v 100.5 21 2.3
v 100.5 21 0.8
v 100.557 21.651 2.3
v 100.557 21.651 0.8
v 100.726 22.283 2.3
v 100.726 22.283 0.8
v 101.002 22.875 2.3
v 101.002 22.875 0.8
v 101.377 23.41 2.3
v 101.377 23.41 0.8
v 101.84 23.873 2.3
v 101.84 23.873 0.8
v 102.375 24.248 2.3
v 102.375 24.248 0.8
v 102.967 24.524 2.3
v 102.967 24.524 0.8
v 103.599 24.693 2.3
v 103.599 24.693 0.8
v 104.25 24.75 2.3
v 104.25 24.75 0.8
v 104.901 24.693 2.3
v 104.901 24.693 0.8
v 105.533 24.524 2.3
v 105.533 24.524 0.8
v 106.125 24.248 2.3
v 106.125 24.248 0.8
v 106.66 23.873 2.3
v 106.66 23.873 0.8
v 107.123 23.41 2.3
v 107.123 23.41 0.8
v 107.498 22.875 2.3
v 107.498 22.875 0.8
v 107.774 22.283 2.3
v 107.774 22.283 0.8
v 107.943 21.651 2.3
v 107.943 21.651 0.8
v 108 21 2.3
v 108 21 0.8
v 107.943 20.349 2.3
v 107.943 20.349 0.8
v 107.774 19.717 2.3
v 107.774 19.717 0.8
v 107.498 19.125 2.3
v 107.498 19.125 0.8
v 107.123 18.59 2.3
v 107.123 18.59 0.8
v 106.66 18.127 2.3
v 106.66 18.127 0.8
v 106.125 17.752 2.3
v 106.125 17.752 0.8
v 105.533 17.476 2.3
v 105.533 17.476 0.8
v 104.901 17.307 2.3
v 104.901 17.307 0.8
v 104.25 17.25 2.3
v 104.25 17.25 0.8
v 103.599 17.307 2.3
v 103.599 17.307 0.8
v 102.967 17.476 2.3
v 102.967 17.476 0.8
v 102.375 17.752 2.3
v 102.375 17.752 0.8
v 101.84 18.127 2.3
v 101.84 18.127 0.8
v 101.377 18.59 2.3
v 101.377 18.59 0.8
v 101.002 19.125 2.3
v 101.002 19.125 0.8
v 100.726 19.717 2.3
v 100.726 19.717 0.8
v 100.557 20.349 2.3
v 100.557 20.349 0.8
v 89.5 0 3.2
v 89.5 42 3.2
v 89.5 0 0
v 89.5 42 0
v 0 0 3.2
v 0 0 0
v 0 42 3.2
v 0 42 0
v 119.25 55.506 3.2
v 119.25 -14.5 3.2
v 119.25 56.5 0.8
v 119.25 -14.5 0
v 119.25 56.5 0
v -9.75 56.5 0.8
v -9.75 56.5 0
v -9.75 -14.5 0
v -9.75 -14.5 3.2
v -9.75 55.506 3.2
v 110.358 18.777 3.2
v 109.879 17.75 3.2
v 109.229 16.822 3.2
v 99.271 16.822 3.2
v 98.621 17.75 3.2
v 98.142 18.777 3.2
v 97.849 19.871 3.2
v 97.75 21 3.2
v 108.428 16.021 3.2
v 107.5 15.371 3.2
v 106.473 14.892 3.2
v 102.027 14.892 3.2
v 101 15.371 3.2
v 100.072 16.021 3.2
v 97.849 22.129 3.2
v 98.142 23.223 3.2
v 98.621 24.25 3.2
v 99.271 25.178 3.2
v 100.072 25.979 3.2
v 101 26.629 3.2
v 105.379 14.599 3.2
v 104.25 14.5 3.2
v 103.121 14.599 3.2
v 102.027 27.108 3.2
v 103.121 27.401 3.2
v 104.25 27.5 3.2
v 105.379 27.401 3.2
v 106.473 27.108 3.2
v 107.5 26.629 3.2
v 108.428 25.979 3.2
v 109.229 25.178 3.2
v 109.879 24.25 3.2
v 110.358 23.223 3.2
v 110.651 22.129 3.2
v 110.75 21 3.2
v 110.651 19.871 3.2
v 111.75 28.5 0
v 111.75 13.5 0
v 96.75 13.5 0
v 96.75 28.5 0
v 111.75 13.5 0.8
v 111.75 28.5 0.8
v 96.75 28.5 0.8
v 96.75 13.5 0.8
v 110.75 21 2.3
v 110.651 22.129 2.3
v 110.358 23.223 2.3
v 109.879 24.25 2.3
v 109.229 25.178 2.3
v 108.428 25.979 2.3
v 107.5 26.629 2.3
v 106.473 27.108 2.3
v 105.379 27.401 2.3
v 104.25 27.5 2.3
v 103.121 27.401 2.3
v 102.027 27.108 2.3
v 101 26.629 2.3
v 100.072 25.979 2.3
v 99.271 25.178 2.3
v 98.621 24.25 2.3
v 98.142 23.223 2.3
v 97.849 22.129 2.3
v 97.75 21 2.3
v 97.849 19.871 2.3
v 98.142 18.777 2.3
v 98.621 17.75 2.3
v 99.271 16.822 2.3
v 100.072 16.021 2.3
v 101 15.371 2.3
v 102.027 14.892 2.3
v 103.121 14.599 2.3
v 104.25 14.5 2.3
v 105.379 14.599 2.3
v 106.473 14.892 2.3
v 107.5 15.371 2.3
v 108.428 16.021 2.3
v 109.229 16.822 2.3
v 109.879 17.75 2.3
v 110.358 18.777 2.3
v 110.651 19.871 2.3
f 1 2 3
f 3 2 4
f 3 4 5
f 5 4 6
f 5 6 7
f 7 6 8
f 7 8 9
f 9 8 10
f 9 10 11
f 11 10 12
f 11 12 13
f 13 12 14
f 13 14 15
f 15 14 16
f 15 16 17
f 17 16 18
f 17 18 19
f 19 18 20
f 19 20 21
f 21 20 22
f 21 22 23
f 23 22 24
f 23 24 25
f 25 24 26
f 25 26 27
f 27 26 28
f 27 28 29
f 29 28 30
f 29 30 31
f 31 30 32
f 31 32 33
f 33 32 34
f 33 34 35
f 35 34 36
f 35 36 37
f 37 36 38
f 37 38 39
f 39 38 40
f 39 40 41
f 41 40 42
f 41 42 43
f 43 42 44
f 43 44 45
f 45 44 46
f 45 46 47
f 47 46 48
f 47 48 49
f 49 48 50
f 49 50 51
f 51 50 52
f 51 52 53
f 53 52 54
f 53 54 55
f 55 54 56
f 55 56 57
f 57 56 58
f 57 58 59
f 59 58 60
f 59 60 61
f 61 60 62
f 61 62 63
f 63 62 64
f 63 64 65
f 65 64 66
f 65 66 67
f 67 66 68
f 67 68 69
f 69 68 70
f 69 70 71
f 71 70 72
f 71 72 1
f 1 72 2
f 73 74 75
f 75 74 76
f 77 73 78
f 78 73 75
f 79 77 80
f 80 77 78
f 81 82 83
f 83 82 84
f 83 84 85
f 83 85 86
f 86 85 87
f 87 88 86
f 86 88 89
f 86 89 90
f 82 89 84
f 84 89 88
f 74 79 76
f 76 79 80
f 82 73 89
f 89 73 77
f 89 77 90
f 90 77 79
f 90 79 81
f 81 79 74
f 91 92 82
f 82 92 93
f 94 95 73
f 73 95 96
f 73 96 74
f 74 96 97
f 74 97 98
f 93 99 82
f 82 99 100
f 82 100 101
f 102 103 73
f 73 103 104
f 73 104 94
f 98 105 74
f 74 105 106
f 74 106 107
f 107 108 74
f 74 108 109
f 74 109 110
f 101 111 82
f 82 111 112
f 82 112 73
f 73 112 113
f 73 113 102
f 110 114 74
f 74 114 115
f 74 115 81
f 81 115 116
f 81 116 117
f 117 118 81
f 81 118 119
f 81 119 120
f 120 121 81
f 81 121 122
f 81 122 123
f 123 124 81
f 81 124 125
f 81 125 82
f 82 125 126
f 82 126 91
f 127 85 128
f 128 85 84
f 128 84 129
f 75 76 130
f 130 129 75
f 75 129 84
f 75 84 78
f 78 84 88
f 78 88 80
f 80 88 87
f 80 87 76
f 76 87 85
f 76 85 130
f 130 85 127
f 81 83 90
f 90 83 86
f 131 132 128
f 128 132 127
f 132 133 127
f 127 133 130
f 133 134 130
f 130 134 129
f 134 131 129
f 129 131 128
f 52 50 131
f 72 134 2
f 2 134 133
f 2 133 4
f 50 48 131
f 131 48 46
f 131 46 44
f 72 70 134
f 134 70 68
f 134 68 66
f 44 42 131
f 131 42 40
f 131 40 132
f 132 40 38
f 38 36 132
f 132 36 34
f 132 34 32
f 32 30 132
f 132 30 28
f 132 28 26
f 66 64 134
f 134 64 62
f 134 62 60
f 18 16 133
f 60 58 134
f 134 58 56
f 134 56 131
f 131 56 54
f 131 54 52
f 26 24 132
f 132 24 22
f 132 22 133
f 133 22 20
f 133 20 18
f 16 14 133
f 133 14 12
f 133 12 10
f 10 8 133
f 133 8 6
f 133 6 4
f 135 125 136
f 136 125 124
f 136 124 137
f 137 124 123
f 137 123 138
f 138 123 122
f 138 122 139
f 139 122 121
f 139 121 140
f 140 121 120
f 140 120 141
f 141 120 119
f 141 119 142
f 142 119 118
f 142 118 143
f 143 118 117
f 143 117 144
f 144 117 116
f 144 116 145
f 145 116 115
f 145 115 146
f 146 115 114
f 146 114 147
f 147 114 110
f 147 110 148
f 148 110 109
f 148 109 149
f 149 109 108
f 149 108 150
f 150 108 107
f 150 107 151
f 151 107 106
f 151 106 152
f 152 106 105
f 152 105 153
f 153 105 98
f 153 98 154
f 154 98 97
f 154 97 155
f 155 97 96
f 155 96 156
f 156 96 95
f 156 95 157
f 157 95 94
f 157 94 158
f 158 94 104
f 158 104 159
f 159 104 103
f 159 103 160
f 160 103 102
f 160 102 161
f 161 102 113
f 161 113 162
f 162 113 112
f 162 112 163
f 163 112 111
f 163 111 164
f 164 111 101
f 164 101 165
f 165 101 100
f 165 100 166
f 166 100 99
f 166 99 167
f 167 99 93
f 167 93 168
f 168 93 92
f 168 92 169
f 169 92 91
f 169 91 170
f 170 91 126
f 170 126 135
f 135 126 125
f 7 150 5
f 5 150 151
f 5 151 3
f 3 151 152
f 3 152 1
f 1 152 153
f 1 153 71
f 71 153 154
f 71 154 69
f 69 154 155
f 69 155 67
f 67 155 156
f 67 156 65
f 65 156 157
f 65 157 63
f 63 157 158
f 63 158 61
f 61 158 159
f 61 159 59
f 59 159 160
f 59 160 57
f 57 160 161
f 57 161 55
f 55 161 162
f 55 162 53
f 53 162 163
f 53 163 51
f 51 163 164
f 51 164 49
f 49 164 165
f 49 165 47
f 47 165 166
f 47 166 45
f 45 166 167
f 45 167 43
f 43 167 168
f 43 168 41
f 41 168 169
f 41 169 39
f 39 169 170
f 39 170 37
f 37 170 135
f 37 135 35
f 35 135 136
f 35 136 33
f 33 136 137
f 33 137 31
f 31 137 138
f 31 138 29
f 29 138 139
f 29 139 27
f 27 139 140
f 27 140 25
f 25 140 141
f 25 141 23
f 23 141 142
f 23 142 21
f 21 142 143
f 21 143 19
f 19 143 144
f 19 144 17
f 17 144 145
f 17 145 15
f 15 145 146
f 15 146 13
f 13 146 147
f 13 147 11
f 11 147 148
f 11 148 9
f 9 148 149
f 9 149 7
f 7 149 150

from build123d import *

# Parameters (mm, degrees)
SKETCH1_R           = 3.75
SKETCH1_W           = 89.5
SKETCH1_H           = 42
BOSS_EXTRUDE1_DEPTH = 3.2
CHAMFER1_SIZE       = 2.4
CHAMFER1_SIZE2      = 0.99411255
SKETCH3_W           = 15
SKETCH3_H           = 15
CUT_EXTRUDE2_DEPTH  = 0.8
SKETCH4_R           = 6.5
CUT_EXTRUDE3_DEPTH  = 0.9


with BuildPart() as part:
    # Sketch1 → Boss-Extrude1 (new body)
    with BuildSketch(Plane.XY):
        Polygon((-9.75, 56.5), (99.25, 56.5), (119.25, 56.5), (119.25, -14.5), (99.25, -14.5), (-9.75, -14.5), align=None)
        with Locations((104.25, 21)):
            Circle(SKETCH1_R, mode=Mode.SUBTRACT)
        with Locations((44.75, 21)):
            Rectangle(SKETCH1_W, SKETCH1_H, mode=Mode.SUBTRACT)
    extrude(amount=BOSS_EXTRUDE1_DEPTH)

    # Chamfer1
    chamfer1_edges = [part.edges().sort_by_distance(p)[0] for p in [
        (54.75, 56.5, 3.2),
    ]]
    chamfer1_side = [part.faces().sort_by_distance(p)[0] for p in [
        (54.75, 56.5, 1.6),
    ]]
    chamfer(chamfer1_edges, length=CHAMFER1_SIZE, length2=CHAMFER1_SIZE2, reference=chamfer1_side[0])

    # Sketch3 → Cut-Extrude2 (cut)
    with BuildSketch(Plane(origin=(0, 0, 0), x_dir=(-1, 0, 0), z_dir=(0, 0, -1))):
        with Locations((-104.25, 21)):
            Rectangle(SKETCH3_W, SKETCH3_H)
    extrude(amount=-CUT_EXTRUDE2_DEPTH, mode=Mode.SUBTRACT)

    # Sketch4 → Cut-Extrude3 (cut)
    with BuildSketch(Plane.XY.offset(3.2)):
        with Locations((104.25, 21)):
            Circle(SKETCH4_R)
    extrude(amount=-CUT_EXTRUDE3_DEPTH, mode=Mode.SUBTRACT)


solid = part.part
